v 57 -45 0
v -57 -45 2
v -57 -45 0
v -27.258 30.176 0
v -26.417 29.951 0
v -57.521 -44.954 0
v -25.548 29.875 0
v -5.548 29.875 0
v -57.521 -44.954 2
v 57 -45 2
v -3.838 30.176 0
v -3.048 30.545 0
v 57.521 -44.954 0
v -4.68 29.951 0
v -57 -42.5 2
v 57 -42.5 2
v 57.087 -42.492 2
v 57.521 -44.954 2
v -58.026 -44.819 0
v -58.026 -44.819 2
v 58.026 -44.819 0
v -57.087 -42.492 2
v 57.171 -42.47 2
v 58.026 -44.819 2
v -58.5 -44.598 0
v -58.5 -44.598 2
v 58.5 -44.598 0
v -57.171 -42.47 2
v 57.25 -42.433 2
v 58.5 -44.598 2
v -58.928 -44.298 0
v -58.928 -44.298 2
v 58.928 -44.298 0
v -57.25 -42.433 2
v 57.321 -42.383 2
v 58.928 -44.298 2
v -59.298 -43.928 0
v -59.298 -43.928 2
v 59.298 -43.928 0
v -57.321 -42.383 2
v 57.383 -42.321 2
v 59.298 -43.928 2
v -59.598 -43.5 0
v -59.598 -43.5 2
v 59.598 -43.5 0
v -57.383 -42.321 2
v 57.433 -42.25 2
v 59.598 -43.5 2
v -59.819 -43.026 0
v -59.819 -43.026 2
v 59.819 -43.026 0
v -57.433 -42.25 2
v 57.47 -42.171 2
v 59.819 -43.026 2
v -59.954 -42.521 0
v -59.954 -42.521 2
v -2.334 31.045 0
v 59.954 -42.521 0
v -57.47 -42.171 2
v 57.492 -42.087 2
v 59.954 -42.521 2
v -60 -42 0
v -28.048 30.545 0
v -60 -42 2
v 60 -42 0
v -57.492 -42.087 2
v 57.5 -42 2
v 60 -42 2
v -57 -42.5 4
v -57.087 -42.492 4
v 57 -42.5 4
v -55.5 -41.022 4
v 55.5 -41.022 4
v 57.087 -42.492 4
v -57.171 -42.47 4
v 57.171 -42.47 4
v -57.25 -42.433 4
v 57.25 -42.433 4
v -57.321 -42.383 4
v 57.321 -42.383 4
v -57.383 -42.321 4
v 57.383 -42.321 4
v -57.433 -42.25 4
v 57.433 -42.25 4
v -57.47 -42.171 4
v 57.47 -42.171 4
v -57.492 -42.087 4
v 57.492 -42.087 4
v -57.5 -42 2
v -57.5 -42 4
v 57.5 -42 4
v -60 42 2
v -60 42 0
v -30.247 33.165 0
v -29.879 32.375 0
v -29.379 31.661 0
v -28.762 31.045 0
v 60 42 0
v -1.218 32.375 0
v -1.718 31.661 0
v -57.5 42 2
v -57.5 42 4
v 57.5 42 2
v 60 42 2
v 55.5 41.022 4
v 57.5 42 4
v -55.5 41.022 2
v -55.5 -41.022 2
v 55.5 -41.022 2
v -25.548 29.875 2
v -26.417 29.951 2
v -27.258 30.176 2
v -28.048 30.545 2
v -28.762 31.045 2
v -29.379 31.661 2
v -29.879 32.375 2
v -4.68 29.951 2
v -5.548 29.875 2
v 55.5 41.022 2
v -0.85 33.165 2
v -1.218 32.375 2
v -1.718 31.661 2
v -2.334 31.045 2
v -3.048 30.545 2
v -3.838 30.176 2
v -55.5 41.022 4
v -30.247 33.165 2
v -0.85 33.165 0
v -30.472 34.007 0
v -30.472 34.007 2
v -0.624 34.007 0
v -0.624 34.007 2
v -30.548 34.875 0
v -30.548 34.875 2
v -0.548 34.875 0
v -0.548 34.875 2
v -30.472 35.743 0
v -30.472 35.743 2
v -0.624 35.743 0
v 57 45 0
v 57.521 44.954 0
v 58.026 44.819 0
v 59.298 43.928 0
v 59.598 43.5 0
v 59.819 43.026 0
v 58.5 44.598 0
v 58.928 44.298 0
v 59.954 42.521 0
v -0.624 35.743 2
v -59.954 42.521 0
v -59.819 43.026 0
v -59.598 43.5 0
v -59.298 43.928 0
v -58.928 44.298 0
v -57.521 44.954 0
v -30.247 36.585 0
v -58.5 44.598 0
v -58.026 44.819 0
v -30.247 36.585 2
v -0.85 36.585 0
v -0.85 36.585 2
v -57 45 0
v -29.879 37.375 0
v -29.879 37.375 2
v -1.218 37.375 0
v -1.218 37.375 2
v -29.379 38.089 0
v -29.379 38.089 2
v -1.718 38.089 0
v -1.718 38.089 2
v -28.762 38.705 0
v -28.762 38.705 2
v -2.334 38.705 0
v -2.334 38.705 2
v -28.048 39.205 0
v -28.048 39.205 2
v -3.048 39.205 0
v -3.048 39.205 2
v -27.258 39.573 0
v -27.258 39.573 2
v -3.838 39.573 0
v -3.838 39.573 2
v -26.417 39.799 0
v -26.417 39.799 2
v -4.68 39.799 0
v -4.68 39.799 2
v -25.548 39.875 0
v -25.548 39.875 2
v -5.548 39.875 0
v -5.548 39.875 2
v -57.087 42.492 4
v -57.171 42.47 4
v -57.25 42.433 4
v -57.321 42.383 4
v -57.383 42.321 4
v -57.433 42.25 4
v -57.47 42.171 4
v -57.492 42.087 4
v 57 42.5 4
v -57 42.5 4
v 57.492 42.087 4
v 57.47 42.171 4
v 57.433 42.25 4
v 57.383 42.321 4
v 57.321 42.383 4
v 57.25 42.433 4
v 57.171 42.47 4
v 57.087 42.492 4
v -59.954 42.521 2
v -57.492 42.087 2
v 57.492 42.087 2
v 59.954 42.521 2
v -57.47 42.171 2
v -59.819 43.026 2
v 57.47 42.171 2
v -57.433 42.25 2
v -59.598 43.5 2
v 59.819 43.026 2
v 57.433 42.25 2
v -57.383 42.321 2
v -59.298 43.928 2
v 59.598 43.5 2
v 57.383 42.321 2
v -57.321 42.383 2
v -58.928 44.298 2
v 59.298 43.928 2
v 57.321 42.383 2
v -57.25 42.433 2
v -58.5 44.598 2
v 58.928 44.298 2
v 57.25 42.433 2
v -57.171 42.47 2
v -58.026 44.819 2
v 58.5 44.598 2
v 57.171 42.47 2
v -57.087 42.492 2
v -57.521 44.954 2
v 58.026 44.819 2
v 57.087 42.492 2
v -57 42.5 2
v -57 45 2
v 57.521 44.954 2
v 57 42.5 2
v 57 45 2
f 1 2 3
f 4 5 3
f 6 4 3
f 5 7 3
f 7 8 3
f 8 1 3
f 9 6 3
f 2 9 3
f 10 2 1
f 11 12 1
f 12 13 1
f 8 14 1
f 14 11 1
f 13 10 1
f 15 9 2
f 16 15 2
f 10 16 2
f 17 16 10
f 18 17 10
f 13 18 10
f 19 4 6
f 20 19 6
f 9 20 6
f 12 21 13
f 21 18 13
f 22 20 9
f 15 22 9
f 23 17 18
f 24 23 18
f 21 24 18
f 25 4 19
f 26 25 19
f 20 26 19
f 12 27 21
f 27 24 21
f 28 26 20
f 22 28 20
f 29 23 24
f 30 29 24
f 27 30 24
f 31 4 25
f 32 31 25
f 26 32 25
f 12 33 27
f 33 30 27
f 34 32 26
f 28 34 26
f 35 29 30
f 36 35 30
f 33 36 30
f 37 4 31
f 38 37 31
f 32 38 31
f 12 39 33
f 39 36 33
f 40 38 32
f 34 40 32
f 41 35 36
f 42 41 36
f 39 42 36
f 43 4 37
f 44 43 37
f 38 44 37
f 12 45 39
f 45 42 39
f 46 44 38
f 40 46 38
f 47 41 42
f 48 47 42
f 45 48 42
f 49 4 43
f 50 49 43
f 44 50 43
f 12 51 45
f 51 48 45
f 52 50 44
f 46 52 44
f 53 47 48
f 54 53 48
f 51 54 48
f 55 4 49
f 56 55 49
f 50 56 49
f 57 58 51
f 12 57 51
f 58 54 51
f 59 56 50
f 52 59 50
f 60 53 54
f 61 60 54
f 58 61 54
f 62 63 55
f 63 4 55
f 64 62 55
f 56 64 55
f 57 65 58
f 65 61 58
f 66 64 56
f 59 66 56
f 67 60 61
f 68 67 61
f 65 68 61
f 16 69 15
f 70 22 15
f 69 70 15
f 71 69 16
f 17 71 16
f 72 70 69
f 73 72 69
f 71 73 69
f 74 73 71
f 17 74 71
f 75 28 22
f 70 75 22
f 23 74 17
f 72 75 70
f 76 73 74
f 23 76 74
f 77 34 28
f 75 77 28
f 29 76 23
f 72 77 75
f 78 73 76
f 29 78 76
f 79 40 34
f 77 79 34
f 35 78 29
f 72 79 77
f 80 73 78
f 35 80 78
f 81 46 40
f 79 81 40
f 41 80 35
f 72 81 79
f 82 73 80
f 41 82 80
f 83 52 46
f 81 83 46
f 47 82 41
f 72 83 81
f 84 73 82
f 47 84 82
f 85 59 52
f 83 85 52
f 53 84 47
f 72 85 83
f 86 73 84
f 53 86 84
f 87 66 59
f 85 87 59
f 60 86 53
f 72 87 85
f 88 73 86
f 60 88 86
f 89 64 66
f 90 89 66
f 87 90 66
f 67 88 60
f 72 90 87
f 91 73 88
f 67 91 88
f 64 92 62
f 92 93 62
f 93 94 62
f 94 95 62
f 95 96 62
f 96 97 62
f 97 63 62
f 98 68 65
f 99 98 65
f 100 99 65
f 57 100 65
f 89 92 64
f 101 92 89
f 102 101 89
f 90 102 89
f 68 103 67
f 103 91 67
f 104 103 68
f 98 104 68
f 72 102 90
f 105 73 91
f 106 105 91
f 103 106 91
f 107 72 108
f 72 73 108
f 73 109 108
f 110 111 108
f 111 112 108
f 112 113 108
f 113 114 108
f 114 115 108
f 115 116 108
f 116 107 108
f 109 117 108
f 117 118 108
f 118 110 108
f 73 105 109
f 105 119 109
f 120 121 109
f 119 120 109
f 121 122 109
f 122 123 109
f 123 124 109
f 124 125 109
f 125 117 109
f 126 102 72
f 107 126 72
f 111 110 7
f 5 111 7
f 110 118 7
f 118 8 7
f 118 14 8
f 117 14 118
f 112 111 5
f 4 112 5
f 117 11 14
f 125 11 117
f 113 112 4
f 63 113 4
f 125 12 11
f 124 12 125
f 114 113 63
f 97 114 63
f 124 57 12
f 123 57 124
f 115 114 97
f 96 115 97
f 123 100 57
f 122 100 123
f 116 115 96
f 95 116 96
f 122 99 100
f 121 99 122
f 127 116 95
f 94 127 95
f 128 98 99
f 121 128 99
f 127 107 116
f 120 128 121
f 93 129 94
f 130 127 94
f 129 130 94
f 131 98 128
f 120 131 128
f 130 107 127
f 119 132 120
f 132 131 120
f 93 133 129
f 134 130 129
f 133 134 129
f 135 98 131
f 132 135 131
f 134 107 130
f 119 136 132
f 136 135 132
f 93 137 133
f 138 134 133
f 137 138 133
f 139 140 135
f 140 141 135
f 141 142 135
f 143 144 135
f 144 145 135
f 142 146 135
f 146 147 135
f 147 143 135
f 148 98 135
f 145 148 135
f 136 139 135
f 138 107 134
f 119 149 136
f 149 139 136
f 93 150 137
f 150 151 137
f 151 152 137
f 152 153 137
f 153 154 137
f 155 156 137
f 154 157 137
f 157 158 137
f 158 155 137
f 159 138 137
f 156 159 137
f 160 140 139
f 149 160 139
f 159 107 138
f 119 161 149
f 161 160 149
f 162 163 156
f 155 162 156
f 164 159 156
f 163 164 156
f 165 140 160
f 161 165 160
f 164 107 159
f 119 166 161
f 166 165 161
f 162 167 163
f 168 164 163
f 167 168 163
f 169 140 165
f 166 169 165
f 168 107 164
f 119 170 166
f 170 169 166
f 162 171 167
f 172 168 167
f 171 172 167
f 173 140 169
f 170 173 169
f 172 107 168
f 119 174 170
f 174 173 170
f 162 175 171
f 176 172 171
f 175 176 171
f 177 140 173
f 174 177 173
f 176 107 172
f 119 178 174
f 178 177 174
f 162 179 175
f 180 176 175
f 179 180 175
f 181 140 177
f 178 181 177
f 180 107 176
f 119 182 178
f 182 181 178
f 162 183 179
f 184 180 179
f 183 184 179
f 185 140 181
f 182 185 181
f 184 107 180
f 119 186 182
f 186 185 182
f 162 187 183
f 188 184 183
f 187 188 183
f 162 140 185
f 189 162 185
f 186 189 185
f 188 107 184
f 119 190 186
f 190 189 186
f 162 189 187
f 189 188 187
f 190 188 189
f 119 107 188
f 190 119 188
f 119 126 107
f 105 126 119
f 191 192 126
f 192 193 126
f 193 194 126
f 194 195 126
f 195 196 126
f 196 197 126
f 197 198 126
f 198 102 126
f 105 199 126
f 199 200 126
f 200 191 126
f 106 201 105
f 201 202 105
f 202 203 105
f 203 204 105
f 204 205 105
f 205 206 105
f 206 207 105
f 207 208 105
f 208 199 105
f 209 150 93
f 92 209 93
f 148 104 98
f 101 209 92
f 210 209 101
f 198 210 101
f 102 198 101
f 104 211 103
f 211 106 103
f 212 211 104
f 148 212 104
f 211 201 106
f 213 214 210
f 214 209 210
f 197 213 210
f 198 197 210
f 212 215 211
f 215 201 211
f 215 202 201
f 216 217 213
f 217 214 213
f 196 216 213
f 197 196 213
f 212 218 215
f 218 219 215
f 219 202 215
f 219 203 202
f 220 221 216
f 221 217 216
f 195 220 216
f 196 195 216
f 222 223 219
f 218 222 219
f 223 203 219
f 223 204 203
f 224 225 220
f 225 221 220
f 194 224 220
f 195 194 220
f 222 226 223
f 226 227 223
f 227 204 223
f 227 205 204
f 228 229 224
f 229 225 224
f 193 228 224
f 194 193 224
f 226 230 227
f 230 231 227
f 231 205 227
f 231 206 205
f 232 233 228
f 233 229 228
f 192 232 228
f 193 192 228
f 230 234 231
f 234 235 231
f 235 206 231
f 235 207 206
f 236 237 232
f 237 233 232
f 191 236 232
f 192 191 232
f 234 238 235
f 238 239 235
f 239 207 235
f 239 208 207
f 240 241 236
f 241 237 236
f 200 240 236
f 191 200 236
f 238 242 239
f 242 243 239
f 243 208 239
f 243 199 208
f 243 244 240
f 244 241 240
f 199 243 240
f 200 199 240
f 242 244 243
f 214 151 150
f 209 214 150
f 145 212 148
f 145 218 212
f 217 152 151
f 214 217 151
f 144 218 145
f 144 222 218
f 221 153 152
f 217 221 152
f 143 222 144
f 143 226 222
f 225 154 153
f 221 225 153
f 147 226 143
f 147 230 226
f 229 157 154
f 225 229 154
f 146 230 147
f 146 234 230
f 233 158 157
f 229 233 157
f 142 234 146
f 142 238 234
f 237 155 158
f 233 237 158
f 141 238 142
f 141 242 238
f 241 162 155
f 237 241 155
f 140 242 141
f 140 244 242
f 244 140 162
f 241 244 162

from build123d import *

# Parameters (mm, degrees)
ESQUISSE1_W             = 120
ESQUISSE1_H             = 90
BOSS_EXTRU_1_DEPTH      = 2
ESQUISSE2_W             = 115
ESQUISSE2_H             = 85
ESQUISSE2_W_2           = 111
ESQUISSE2_H_2           = 82.04347826
BOSS_EXTRU_2_DEPTH      = 2
ENL_V_MAT_EXTRU_1_DEPTH = 2
CONG_1_R                = 3
CONG_2_R                = 0.5


with BuildPart() as part:
    # Esquisse1 → Boss.-Extru.1 (new body)
    with BuildSketch(Plane.XY):
        Rectangle(ESQUISSE1_W, ESQUISSE1_H)
    extrude(amount=BOSS_EXTRU_1_DEPTH)

    # Esquisse2 → Boss.-Extru.2 (add)
    with BuildSketch(Plane.XY.offset(2)):
        Rectangle(ESQUISSE2_W, ESQUISSE2_H)
        Rectangle(ESQUISSE2_W_2, ESQUISSE2_H_2, mode=Mode.SUBTRACT)
    extrude(amount=BOSS_EXTRU_2_DEPTH)

    # Esquisse3 → Enlèv. mat.-Extru.1 (cut)
    with BuildSketch(Plane(origin=(0, 0, 0), x_dir=(-1, 0, 0), z_dir=(0, 0, -1))):
        with BuildLine():
            Line((5.548380707, 39.874958244), (25.548380707, 39.874958244))
            ThreePointArc((25.548380707, 39.874958244), (30.548380707, 34.874958244), (25.548380707, 29.874958244))
            Line((25.548380707, 29.874958244), (5.548380707, 29.874958244))
            ThreePointArc((5.548380707, 29.874958244), (0.548380707, 34.874958244), (5.548380707, 39.874958244))
        make_face()
    extrude(amount=-ENL_V_MAT_EXTRU_1_DEPTH, mode=Mode.SUBTRACT)

    # Congé1
    cong_1_edges = [part.edges().sort_by_distance(p)[0] for p in [
        (-60, 45, 1),
        (60, 45, 1),
        (60, -45, 1),
        (-60, -45, 1),
    ]]
    fillet(cong_1_edges, radius=CONG_1_R)

    # Congé2
    cong_2_edges = [part.edges().sort_by_distance(p)[0] for p in [
        (-57.5, 42.5, 3),
        (-57.5, -42.5, 3),
        (57.5, -42.5, 3),
        (57.5, 42.5, 3),
    ]]
    fillet(cong_2_edges, radius=CONG_2_R)


solid = part.part
